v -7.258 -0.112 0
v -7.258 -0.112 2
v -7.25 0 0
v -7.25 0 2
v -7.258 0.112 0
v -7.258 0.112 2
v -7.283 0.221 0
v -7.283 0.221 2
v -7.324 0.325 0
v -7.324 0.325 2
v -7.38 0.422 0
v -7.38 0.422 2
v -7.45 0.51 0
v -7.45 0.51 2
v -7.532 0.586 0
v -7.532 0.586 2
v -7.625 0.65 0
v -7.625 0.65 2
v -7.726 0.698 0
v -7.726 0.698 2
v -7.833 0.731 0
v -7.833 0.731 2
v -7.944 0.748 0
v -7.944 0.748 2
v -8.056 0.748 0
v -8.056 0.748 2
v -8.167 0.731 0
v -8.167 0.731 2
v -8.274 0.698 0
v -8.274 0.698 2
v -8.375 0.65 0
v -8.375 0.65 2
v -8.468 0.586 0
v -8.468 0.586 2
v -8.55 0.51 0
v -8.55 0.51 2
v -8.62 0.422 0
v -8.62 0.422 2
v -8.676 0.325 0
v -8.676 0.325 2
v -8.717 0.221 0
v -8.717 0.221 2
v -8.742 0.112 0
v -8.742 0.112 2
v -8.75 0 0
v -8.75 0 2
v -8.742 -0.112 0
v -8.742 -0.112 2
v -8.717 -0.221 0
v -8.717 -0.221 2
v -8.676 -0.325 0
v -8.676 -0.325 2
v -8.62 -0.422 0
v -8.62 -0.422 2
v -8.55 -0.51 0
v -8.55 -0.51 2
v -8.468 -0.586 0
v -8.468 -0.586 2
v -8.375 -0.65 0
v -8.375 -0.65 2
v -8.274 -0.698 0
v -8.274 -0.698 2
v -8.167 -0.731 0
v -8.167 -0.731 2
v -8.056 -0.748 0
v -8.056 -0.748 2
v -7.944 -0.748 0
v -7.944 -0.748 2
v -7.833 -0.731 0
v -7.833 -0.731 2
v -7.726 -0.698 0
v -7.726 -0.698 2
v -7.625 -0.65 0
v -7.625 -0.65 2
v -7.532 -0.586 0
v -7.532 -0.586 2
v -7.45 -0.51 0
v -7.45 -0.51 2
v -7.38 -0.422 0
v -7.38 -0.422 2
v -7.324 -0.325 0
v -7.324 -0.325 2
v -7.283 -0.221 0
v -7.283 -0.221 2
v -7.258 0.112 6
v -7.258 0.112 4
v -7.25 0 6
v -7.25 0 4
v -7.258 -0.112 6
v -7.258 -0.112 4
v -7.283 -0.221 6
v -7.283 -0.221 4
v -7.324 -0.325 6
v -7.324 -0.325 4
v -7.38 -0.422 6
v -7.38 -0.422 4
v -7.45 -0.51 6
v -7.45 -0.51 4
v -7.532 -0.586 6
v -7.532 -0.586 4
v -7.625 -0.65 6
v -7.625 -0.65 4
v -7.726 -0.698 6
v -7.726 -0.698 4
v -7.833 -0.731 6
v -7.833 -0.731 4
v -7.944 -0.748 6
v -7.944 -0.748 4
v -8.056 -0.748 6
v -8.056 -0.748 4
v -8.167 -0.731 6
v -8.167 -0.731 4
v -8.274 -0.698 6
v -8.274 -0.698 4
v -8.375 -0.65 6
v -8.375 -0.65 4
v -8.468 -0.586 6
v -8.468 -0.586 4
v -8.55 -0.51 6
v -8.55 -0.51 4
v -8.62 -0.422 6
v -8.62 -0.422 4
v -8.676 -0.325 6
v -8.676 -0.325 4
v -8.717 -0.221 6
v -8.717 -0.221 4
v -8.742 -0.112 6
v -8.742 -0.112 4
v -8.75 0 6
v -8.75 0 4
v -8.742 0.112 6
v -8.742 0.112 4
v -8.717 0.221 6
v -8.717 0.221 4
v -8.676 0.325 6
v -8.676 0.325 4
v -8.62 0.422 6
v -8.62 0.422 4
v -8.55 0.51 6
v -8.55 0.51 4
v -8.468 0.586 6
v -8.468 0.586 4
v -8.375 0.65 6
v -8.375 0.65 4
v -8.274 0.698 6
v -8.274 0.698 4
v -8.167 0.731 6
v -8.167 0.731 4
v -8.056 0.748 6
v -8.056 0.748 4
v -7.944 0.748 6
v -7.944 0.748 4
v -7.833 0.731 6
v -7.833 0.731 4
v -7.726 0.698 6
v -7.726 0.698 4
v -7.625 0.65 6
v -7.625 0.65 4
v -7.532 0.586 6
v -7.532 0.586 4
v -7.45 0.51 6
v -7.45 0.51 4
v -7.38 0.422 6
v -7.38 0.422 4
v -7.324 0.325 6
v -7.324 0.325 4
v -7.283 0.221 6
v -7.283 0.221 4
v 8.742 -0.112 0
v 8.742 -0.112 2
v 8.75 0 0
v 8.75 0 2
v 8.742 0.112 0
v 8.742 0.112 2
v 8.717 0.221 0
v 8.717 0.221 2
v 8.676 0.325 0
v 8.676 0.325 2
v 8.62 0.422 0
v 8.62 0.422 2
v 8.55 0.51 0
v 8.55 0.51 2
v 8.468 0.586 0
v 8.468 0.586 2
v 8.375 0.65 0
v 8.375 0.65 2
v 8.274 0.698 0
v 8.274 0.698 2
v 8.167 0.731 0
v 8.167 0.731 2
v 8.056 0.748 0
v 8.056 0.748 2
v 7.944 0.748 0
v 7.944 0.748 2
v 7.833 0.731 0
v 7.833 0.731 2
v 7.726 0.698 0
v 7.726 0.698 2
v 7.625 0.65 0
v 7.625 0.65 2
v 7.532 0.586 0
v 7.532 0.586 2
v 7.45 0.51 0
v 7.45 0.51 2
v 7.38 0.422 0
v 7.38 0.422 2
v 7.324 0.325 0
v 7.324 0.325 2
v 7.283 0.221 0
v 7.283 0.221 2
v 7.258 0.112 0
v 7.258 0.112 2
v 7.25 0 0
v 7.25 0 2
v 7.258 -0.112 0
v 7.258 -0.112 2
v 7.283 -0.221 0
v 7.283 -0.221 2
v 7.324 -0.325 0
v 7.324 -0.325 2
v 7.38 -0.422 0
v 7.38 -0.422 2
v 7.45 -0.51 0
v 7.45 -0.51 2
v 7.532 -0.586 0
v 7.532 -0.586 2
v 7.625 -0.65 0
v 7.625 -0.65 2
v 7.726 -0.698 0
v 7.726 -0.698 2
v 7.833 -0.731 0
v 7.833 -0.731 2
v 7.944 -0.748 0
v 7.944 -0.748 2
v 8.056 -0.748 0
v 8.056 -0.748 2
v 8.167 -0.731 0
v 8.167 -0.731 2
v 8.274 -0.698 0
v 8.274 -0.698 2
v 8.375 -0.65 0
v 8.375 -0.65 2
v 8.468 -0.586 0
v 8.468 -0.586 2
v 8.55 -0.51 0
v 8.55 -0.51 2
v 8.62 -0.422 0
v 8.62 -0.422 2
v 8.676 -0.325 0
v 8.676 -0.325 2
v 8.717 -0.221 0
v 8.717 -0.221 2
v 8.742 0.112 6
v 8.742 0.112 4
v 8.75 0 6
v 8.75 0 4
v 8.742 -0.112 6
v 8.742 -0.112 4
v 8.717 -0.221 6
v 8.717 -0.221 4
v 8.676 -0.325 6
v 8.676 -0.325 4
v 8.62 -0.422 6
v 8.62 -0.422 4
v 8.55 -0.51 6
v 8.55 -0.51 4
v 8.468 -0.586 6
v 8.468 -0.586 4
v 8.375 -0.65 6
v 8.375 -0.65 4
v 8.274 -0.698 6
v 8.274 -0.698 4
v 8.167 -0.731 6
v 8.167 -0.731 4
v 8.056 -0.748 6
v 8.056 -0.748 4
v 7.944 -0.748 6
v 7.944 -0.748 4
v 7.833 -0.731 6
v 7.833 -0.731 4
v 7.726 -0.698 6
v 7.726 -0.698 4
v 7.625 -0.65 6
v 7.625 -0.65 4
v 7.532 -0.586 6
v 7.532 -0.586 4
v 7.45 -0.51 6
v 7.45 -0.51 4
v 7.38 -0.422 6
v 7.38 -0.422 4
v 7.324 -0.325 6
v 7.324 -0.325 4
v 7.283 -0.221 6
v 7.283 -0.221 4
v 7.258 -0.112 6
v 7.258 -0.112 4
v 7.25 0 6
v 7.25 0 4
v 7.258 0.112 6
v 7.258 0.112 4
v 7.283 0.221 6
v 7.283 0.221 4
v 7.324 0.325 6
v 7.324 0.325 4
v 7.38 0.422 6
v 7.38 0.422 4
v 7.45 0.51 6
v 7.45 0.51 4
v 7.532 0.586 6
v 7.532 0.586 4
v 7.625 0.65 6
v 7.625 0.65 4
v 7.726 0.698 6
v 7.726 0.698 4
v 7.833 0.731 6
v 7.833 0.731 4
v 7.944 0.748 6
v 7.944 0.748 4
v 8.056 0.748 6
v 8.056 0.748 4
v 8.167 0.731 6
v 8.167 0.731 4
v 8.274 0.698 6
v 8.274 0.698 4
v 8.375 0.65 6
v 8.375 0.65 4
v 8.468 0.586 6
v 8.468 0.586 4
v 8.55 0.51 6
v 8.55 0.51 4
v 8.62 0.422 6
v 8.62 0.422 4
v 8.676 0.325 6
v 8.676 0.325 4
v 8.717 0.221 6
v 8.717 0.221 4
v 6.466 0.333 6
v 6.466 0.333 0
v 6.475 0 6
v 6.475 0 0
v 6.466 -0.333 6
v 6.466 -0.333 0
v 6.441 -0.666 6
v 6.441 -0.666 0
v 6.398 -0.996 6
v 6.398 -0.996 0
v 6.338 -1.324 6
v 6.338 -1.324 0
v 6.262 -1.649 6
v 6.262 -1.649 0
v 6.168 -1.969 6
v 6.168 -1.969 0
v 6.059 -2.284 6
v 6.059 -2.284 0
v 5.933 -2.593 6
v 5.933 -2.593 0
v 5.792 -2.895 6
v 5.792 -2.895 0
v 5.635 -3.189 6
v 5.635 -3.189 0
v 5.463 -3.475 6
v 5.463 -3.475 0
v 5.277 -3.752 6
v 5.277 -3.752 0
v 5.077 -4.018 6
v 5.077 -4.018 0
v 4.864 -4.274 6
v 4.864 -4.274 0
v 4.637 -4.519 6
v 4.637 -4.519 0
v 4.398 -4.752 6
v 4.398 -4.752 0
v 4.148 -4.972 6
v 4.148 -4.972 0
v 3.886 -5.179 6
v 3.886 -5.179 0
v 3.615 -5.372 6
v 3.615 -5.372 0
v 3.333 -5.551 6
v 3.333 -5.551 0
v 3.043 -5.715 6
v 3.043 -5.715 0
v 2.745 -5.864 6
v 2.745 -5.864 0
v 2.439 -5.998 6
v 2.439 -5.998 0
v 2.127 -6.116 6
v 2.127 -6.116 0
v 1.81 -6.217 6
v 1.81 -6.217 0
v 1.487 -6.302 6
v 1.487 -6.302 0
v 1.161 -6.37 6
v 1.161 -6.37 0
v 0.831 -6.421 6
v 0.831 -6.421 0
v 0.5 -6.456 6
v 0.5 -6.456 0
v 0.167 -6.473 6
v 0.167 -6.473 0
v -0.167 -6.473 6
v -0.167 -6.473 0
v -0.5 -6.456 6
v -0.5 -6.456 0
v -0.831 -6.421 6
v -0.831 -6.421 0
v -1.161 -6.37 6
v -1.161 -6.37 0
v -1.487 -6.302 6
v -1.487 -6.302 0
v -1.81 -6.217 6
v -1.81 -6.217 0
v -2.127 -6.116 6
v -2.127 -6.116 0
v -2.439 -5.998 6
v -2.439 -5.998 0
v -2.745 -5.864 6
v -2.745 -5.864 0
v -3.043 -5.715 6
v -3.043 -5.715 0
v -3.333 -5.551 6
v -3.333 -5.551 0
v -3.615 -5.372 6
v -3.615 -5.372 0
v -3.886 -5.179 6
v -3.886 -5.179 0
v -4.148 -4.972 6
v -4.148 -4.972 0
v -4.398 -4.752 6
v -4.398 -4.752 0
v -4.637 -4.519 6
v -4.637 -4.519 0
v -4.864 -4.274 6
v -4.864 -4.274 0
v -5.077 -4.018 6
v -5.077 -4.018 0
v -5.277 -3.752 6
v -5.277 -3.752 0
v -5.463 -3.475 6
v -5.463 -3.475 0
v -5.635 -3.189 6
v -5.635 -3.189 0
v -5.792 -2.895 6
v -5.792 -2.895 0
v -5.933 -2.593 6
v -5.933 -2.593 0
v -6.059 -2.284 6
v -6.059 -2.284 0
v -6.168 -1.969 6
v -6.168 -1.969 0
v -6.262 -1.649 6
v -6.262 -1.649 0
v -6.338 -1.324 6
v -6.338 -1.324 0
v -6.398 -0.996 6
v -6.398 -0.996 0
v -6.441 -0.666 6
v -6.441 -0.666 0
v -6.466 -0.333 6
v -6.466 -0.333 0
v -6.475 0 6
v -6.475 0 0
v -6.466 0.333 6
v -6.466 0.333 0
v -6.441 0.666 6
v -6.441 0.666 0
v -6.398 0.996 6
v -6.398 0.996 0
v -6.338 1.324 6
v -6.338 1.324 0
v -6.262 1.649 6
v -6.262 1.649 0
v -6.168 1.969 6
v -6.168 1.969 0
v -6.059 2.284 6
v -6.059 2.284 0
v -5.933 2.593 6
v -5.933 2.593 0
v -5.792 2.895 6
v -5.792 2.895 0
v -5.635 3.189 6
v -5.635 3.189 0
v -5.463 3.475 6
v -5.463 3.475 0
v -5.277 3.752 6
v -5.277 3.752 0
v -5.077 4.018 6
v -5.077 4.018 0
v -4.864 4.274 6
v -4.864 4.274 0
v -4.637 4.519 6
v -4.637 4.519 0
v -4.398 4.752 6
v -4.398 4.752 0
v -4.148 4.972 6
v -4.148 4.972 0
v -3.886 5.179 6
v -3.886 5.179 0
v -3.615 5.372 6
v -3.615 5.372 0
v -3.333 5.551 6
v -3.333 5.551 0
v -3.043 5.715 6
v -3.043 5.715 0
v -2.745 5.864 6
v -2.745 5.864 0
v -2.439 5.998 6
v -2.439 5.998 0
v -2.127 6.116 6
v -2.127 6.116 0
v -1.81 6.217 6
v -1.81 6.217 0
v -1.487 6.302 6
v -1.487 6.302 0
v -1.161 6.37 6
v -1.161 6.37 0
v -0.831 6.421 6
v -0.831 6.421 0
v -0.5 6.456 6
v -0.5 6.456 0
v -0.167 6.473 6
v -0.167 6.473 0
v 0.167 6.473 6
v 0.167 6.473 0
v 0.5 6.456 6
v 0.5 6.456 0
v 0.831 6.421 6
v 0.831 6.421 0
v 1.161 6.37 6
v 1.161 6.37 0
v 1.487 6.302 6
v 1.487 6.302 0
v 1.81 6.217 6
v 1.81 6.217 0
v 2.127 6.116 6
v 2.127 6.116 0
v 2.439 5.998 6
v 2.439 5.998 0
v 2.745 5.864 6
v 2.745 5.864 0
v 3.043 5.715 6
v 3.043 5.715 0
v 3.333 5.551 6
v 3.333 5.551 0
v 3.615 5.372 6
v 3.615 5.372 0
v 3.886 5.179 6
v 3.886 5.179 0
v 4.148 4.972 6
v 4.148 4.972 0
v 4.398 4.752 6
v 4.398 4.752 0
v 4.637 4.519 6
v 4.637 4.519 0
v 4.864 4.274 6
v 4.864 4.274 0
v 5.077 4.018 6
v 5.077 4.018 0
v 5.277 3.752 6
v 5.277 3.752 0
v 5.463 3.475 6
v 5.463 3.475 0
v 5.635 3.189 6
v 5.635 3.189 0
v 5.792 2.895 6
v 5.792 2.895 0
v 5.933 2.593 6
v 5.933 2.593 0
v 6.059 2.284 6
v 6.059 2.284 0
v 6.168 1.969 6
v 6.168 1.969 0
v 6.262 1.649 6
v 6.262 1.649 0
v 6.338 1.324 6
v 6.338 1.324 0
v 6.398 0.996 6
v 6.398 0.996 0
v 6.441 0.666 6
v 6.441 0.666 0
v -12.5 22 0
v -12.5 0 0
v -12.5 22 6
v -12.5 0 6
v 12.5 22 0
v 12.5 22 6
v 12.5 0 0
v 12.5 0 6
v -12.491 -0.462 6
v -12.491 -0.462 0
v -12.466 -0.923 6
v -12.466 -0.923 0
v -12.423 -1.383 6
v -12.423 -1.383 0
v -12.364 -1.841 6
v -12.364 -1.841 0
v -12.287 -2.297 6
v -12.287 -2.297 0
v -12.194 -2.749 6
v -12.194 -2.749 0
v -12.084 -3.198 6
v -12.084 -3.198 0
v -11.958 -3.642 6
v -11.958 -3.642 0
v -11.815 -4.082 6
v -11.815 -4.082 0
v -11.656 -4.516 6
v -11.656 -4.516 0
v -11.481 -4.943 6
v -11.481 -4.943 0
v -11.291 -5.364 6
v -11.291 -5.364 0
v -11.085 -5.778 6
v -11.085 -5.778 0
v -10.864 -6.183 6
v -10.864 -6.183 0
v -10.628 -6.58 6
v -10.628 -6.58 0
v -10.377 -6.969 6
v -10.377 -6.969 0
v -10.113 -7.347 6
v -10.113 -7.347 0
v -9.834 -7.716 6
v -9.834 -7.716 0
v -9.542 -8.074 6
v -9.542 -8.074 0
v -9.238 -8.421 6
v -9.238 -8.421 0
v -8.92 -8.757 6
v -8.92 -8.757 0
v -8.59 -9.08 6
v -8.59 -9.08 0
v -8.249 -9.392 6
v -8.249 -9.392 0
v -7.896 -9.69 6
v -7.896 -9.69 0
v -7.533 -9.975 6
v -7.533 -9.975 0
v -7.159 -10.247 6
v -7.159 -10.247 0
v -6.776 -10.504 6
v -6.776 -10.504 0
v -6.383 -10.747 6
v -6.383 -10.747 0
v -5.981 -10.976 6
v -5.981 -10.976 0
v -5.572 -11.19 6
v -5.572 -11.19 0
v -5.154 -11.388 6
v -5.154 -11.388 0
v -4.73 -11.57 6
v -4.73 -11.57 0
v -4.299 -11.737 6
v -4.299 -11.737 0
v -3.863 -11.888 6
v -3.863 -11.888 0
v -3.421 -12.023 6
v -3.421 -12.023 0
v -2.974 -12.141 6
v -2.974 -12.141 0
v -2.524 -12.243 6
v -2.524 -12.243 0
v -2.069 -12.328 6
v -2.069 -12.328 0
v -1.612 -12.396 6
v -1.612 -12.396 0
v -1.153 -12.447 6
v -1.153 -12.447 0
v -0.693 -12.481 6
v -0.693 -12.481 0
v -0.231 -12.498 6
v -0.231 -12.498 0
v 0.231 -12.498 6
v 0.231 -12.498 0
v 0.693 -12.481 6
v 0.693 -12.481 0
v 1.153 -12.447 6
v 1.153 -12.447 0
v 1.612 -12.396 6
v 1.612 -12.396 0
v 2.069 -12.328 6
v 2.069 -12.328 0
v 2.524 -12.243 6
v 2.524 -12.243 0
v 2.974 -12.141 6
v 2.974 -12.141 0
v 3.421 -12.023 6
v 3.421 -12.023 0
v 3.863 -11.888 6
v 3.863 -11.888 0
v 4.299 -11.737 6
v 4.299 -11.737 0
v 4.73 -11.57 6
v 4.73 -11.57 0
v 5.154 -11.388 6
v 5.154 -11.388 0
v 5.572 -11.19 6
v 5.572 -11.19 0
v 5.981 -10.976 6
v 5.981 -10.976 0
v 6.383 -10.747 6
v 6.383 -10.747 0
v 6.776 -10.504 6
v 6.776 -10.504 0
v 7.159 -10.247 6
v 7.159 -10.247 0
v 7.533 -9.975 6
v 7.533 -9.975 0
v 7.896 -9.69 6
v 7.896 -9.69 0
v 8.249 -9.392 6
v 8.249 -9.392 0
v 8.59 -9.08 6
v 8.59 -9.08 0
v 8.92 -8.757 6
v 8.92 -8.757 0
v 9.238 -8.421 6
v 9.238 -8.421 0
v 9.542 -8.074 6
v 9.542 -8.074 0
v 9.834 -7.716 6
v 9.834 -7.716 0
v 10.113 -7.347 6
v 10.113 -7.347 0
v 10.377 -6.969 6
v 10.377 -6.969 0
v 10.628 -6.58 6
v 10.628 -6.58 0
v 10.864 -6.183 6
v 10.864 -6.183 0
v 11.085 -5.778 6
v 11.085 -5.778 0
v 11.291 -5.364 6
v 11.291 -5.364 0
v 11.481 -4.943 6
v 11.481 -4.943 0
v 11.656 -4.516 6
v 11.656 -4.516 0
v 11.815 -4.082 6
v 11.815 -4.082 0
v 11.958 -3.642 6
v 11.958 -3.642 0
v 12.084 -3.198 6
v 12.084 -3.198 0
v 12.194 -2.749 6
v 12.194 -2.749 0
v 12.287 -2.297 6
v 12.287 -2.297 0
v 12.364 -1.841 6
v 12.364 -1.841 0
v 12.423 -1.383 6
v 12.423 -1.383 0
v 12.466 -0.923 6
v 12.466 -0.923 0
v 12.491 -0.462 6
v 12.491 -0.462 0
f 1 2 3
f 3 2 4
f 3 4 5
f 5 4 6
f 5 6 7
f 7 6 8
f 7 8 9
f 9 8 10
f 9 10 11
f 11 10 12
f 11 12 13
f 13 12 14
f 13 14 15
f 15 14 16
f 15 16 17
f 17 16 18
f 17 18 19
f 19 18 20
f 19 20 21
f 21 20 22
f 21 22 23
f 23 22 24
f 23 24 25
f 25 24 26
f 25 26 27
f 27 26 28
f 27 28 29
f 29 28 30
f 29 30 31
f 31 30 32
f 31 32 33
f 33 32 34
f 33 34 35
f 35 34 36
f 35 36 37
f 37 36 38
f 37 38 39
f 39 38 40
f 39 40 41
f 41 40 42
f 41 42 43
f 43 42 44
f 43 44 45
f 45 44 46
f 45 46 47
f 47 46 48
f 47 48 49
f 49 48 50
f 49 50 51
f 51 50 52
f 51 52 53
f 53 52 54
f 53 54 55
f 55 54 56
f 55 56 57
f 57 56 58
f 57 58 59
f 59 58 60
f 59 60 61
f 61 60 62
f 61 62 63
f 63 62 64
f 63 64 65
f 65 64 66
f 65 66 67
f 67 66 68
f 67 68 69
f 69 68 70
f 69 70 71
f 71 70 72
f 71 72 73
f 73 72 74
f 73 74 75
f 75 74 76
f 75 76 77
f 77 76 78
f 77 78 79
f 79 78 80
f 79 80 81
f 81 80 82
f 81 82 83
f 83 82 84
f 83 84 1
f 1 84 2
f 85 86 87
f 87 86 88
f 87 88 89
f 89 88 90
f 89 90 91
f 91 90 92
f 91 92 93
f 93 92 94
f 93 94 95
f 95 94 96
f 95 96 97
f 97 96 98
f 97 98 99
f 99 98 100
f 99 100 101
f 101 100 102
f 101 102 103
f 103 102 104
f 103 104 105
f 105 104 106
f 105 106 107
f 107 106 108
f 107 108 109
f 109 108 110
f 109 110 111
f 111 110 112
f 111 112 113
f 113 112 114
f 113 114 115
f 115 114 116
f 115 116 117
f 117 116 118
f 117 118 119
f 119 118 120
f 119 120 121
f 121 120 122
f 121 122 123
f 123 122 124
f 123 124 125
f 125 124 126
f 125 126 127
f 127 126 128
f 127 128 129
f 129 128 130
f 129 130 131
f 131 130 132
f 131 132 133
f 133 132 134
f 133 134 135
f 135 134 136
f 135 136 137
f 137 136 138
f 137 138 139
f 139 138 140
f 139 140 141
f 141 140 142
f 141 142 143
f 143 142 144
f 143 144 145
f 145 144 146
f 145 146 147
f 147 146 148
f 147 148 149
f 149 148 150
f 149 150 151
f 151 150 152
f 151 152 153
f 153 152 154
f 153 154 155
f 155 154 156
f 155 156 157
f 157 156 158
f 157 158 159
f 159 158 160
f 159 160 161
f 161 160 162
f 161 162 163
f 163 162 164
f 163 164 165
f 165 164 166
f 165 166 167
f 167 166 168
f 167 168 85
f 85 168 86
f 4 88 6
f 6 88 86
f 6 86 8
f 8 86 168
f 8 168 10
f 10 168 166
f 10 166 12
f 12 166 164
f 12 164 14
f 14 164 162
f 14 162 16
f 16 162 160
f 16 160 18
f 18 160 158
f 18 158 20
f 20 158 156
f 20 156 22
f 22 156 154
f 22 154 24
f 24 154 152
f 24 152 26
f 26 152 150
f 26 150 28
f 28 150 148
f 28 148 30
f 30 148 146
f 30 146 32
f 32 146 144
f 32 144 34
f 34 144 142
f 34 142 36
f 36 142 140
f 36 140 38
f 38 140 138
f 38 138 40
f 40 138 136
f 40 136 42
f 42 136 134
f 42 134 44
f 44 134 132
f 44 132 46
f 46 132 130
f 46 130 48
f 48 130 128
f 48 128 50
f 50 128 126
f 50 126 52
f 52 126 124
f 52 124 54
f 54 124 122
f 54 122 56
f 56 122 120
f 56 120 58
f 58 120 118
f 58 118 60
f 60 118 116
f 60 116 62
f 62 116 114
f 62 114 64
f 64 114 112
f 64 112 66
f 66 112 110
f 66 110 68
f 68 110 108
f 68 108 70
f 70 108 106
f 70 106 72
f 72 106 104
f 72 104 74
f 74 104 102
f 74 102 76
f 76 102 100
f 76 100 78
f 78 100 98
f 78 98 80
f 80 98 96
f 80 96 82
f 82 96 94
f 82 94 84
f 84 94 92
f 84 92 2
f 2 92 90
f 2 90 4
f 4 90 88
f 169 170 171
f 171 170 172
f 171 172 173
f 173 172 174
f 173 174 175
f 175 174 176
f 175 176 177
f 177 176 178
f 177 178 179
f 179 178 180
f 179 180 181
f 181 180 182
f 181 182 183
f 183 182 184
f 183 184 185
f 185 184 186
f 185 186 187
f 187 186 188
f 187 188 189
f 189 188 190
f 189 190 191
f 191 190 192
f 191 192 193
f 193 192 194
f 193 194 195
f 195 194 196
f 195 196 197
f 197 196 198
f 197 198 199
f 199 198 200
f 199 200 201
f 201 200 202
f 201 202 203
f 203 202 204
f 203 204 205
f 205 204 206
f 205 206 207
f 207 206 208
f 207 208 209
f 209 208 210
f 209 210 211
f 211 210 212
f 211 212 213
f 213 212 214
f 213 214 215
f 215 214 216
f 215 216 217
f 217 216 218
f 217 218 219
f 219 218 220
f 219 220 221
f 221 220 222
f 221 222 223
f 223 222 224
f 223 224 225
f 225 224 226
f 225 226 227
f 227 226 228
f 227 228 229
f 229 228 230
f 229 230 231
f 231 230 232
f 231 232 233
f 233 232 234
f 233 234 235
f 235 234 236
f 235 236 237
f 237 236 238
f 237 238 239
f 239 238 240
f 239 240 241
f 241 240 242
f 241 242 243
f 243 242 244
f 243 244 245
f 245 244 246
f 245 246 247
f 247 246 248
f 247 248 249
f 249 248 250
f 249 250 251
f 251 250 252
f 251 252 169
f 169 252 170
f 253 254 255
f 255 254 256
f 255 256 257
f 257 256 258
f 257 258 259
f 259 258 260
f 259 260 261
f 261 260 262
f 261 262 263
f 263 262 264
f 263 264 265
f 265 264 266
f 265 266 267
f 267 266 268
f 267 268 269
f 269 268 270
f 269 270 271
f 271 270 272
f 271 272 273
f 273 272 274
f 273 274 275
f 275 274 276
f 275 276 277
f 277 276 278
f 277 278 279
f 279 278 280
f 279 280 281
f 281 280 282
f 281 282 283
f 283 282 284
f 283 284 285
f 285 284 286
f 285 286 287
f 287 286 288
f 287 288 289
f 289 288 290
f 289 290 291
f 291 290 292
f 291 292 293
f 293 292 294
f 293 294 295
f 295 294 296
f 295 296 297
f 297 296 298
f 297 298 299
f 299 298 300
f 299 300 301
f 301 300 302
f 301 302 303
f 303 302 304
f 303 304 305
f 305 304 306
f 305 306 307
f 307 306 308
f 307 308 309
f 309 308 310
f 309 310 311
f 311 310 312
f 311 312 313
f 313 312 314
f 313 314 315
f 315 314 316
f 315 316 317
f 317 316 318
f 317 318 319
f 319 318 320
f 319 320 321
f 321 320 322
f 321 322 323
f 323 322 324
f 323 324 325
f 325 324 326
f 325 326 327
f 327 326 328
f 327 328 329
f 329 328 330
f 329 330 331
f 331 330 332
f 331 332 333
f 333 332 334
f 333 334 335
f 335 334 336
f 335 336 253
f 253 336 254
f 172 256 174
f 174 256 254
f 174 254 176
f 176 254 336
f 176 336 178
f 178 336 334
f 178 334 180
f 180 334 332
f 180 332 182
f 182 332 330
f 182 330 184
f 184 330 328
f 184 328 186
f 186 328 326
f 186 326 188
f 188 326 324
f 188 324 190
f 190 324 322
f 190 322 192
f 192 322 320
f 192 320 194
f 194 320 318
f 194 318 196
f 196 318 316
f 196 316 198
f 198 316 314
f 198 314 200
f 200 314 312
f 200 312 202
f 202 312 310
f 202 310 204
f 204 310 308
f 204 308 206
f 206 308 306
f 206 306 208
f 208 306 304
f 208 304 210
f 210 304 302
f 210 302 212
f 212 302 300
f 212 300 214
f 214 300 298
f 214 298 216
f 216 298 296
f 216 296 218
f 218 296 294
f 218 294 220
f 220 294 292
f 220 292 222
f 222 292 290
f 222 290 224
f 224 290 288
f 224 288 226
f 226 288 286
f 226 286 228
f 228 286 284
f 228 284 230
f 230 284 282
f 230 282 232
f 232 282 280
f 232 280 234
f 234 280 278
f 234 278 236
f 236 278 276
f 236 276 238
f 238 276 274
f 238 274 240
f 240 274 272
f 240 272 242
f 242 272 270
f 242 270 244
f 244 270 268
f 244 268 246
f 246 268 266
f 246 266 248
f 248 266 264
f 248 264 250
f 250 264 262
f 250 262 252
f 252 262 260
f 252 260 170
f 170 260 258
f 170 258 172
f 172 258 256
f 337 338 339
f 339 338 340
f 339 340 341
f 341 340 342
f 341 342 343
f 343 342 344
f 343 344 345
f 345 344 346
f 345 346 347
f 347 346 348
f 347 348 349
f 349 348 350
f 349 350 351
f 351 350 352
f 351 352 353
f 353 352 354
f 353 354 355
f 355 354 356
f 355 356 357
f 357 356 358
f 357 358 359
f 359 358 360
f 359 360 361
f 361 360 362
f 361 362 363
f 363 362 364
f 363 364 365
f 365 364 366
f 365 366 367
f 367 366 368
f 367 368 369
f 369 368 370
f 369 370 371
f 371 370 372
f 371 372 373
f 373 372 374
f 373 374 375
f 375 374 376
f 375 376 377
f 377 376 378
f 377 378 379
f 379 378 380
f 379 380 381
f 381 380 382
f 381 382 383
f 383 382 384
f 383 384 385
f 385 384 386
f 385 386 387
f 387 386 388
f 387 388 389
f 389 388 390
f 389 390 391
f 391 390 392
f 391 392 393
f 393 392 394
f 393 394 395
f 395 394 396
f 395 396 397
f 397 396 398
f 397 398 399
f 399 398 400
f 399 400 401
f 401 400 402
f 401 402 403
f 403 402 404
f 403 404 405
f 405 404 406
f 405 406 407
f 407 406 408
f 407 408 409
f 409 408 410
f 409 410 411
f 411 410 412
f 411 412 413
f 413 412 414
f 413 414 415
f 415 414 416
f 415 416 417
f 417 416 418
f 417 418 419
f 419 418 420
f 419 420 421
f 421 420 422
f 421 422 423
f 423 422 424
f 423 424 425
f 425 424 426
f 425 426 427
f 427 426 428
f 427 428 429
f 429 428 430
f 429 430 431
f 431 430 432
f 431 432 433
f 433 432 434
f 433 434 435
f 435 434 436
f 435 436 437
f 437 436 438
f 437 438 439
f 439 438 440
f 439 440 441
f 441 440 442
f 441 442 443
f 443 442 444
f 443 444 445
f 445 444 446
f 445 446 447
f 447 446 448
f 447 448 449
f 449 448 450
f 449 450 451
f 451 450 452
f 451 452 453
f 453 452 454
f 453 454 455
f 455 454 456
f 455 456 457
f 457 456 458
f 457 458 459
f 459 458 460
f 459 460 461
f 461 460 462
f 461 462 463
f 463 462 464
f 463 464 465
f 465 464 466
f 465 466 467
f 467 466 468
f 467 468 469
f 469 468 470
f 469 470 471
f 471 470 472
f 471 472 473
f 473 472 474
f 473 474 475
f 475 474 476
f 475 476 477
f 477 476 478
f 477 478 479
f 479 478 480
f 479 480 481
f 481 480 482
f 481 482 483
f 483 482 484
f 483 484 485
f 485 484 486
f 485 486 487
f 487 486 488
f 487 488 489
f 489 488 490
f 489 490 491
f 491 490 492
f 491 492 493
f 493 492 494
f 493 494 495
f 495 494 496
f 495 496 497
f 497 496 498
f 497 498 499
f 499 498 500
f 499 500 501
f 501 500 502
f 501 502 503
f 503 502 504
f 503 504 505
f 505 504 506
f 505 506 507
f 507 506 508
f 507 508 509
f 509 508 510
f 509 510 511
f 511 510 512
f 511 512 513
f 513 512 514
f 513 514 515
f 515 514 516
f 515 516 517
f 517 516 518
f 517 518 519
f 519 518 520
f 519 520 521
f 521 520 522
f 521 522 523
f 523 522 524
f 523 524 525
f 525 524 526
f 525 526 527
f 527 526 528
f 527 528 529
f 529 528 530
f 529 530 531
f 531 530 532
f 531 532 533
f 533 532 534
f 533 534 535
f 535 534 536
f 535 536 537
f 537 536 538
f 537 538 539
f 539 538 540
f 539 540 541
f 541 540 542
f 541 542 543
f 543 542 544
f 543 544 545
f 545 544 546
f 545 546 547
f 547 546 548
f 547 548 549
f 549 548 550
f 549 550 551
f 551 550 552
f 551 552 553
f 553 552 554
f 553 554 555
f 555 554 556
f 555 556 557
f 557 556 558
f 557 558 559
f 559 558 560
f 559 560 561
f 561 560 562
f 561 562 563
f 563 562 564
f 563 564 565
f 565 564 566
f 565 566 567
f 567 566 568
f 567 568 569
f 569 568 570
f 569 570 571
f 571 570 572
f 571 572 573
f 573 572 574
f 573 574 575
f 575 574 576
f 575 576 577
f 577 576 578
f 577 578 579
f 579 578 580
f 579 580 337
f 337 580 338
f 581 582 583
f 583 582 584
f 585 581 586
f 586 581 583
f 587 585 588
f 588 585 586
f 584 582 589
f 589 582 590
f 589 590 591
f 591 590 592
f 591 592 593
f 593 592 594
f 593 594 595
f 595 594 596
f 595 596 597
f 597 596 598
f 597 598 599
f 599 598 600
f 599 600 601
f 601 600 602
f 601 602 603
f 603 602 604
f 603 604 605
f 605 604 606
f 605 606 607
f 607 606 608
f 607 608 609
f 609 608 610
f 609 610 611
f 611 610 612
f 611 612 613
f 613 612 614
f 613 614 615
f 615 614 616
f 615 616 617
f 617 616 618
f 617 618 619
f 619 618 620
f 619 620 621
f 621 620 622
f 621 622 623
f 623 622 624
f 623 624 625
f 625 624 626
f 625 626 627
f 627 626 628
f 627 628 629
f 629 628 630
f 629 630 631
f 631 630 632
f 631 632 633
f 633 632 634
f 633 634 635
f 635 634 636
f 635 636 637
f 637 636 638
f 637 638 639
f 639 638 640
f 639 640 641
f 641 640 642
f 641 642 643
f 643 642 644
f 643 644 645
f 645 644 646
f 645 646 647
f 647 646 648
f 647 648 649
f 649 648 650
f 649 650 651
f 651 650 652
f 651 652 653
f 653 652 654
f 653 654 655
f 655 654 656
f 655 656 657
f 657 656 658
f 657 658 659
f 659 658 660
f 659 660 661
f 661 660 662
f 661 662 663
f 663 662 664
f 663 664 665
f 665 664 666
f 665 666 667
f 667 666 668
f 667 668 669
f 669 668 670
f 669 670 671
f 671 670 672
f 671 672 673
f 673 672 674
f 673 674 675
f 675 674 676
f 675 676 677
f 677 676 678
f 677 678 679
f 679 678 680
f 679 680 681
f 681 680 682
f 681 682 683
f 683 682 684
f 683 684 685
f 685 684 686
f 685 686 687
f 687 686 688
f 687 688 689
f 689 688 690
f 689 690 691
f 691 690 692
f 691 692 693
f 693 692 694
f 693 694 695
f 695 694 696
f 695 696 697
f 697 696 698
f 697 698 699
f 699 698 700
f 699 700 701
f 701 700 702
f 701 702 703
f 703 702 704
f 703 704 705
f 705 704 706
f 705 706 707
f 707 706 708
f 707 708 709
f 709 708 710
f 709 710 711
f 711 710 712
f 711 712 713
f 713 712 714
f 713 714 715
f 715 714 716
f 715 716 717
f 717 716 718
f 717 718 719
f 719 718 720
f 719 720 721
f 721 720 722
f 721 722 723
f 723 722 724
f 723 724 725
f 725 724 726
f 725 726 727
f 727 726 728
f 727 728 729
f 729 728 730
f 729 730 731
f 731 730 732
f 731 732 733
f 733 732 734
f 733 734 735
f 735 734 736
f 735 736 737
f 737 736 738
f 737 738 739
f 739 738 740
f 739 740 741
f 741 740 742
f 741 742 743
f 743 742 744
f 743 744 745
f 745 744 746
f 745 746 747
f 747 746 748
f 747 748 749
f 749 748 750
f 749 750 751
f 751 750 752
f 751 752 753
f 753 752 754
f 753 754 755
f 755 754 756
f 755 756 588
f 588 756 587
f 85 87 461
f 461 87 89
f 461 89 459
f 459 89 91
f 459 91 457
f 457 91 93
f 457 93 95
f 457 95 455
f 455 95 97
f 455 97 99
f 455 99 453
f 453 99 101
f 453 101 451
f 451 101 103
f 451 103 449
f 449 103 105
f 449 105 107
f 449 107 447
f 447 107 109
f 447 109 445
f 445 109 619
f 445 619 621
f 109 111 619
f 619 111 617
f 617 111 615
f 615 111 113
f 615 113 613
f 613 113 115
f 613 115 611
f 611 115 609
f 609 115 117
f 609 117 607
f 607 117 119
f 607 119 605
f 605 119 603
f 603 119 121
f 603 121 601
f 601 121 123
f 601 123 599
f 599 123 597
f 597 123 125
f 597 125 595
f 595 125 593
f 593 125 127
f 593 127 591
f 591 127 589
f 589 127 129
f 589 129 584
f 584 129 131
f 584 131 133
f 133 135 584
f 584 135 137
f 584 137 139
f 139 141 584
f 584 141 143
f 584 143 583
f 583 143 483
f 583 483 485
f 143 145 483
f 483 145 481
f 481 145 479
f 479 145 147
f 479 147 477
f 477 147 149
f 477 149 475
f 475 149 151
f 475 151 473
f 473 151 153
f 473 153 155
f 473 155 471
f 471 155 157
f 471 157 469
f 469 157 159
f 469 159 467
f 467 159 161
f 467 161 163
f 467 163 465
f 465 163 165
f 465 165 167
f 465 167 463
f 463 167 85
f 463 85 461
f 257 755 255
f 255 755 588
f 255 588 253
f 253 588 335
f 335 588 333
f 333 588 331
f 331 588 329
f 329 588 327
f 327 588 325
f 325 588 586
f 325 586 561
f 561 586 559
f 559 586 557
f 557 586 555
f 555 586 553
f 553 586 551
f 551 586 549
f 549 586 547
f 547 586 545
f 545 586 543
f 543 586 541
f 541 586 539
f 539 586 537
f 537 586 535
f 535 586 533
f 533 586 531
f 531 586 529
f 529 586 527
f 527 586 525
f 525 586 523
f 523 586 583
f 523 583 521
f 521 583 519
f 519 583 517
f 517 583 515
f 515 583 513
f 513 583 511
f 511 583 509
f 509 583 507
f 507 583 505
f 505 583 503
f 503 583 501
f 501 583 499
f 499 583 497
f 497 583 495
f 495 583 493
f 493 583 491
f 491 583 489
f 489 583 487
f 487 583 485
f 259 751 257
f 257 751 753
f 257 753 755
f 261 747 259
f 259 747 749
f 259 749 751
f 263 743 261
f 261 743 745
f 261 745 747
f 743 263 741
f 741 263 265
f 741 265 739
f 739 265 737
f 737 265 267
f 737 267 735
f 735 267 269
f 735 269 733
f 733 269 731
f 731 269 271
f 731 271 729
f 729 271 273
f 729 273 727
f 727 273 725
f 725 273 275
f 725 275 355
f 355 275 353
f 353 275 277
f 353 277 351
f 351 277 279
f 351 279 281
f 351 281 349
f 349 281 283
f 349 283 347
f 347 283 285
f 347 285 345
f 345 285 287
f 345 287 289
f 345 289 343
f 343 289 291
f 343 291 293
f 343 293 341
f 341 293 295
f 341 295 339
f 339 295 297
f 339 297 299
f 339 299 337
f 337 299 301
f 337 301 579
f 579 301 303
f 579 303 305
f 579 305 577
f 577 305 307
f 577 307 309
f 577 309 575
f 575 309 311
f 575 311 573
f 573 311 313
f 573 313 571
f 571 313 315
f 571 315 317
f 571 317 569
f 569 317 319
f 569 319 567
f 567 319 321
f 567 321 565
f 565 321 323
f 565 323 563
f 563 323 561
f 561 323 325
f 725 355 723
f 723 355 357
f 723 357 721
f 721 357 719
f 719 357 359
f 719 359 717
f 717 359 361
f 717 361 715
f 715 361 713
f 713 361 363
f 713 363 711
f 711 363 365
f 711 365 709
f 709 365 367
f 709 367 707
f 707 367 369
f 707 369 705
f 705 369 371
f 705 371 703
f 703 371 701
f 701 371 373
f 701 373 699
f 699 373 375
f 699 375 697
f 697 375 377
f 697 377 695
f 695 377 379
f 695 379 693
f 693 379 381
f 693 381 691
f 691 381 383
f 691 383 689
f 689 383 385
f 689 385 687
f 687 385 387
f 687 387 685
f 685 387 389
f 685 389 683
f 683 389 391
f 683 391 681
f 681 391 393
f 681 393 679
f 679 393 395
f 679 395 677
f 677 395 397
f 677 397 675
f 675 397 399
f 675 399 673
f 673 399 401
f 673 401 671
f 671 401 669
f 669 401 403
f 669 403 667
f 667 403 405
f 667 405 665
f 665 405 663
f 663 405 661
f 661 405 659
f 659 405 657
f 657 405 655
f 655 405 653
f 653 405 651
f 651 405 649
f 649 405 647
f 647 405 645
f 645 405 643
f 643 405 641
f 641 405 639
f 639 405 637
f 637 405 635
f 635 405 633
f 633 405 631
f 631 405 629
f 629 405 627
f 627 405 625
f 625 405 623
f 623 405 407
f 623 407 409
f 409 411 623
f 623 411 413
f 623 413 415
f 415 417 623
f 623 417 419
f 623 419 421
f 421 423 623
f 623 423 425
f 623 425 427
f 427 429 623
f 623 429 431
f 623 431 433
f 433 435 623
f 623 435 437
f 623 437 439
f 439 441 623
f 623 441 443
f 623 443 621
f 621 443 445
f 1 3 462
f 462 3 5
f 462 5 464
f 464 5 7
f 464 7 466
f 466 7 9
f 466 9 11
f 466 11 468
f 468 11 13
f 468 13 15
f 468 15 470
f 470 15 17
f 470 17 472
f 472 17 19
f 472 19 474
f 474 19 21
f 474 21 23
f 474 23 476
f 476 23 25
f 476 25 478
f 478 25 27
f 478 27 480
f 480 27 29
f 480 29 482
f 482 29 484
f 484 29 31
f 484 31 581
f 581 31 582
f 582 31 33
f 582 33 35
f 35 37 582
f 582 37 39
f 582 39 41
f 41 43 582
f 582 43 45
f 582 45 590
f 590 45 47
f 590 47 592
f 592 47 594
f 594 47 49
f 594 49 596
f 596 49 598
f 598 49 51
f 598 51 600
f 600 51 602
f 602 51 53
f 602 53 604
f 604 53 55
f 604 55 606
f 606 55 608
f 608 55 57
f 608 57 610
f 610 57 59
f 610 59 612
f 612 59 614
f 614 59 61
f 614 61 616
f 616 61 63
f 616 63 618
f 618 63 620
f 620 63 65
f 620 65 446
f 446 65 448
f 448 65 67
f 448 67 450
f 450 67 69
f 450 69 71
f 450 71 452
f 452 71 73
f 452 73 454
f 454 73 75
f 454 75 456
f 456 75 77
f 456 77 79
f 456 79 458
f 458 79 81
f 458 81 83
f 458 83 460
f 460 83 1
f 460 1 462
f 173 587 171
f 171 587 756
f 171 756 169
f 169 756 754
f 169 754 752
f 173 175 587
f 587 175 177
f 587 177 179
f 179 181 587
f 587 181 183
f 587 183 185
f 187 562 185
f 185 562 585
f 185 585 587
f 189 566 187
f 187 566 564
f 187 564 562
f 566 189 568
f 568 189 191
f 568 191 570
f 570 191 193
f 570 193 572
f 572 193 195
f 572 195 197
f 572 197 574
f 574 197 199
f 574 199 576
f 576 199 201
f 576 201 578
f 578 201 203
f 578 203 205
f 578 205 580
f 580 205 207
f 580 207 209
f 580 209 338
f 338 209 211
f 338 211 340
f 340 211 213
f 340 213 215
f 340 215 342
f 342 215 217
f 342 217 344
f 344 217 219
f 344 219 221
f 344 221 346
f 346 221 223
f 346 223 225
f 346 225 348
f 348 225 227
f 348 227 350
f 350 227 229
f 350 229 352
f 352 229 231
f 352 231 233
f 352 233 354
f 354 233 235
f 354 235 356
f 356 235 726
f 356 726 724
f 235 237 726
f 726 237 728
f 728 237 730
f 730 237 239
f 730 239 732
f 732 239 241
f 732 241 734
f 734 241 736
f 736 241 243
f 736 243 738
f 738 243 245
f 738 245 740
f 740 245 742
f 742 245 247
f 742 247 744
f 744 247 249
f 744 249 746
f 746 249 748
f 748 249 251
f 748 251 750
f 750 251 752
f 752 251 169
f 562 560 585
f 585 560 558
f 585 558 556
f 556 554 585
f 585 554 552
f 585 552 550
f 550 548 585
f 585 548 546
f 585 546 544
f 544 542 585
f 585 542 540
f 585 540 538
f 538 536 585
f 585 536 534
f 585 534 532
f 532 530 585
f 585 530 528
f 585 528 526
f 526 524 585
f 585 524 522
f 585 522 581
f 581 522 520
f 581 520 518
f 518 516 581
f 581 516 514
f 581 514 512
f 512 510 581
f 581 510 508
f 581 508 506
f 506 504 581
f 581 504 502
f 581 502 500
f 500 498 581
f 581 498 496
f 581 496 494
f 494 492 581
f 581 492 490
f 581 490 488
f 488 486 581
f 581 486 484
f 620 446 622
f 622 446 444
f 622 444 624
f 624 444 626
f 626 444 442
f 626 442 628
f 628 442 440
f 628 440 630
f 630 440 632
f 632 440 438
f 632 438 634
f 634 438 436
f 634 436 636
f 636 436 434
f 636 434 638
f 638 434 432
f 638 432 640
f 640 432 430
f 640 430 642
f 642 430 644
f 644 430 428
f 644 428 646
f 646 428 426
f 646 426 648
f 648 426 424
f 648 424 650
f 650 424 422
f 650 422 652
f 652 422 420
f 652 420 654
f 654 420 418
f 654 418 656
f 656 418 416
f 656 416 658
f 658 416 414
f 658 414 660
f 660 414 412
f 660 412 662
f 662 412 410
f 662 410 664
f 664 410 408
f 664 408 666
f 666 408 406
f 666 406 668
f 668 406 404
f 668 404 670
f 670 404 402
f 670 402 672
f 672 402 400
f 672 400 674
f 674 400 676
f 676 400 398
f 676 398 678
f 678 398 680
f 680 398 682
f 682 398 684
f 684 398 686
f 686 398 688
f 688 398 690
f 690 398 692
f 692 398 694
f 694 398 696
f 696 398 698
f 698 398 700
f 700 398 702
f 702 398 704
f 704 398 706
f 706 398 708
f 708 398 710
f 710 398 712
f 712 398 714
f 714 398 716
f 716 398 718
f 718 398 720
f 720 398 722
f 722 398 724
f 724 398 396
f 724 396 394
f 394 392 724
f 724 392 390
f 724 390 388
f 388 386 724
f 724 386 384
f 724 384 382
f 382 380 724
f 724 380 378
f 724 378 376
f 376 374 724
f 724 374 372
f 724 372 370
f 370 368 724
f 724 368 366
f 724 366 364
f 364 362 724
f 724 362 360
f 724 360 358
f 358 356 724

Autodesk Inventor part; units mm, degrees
ref_plane "YZ Plane" through (0, 0, 0) normal (1, 0, 0) x (0, 1, 0)
ref_plane "XZ Plane" through (0, 0, 0) normal (0, 1, 0) x (-1, 0, 0)
ref_plane "XY Plane" through (0, 0, 0) normal (0, 0, 1) x (1, 0, 0)
sketch "Sketch1" plane through (0, 0, 0) normal (0, 0, 1) x (1, 0, 0)
  circle A0 centre (0, 0) radius 6.475
  arc A1 (-12.5, 0) -> (12.5, 0) centre (0, 0) ccw
  line L0 (-12.5, 0) -> (-12.5, 22)
  line L1 (-12.5, 22) -> (12.5, 22)
  line L2 (12.5, 22) -> (12.5, 0)
  dimension "d0" = 12.95
  dimension "d1" = 25
  dimension "d2" = 22
  dimension "d3" = 25
extrude "Extrusion1" add sketch "Sketch1" along normal blind 6
sketch "Sketch3" plane through (0, 0, 6) normal (0, 0, 1) x (1, 0, 0)
  circle A0 centre (-8, 0) radius 0.75
  circle A1 centre (8, 0) radius 0.75
  point P0 (0, 0)
  dimension "d7" = 16
  dimension "d8" = 8
  dimension "d9" = 1.5
  dimension "d10" = 1.5
extrude "Extrusion2" cut sketch "Sketch3" against normal blind 8
properties part number "Bearing Housing"
